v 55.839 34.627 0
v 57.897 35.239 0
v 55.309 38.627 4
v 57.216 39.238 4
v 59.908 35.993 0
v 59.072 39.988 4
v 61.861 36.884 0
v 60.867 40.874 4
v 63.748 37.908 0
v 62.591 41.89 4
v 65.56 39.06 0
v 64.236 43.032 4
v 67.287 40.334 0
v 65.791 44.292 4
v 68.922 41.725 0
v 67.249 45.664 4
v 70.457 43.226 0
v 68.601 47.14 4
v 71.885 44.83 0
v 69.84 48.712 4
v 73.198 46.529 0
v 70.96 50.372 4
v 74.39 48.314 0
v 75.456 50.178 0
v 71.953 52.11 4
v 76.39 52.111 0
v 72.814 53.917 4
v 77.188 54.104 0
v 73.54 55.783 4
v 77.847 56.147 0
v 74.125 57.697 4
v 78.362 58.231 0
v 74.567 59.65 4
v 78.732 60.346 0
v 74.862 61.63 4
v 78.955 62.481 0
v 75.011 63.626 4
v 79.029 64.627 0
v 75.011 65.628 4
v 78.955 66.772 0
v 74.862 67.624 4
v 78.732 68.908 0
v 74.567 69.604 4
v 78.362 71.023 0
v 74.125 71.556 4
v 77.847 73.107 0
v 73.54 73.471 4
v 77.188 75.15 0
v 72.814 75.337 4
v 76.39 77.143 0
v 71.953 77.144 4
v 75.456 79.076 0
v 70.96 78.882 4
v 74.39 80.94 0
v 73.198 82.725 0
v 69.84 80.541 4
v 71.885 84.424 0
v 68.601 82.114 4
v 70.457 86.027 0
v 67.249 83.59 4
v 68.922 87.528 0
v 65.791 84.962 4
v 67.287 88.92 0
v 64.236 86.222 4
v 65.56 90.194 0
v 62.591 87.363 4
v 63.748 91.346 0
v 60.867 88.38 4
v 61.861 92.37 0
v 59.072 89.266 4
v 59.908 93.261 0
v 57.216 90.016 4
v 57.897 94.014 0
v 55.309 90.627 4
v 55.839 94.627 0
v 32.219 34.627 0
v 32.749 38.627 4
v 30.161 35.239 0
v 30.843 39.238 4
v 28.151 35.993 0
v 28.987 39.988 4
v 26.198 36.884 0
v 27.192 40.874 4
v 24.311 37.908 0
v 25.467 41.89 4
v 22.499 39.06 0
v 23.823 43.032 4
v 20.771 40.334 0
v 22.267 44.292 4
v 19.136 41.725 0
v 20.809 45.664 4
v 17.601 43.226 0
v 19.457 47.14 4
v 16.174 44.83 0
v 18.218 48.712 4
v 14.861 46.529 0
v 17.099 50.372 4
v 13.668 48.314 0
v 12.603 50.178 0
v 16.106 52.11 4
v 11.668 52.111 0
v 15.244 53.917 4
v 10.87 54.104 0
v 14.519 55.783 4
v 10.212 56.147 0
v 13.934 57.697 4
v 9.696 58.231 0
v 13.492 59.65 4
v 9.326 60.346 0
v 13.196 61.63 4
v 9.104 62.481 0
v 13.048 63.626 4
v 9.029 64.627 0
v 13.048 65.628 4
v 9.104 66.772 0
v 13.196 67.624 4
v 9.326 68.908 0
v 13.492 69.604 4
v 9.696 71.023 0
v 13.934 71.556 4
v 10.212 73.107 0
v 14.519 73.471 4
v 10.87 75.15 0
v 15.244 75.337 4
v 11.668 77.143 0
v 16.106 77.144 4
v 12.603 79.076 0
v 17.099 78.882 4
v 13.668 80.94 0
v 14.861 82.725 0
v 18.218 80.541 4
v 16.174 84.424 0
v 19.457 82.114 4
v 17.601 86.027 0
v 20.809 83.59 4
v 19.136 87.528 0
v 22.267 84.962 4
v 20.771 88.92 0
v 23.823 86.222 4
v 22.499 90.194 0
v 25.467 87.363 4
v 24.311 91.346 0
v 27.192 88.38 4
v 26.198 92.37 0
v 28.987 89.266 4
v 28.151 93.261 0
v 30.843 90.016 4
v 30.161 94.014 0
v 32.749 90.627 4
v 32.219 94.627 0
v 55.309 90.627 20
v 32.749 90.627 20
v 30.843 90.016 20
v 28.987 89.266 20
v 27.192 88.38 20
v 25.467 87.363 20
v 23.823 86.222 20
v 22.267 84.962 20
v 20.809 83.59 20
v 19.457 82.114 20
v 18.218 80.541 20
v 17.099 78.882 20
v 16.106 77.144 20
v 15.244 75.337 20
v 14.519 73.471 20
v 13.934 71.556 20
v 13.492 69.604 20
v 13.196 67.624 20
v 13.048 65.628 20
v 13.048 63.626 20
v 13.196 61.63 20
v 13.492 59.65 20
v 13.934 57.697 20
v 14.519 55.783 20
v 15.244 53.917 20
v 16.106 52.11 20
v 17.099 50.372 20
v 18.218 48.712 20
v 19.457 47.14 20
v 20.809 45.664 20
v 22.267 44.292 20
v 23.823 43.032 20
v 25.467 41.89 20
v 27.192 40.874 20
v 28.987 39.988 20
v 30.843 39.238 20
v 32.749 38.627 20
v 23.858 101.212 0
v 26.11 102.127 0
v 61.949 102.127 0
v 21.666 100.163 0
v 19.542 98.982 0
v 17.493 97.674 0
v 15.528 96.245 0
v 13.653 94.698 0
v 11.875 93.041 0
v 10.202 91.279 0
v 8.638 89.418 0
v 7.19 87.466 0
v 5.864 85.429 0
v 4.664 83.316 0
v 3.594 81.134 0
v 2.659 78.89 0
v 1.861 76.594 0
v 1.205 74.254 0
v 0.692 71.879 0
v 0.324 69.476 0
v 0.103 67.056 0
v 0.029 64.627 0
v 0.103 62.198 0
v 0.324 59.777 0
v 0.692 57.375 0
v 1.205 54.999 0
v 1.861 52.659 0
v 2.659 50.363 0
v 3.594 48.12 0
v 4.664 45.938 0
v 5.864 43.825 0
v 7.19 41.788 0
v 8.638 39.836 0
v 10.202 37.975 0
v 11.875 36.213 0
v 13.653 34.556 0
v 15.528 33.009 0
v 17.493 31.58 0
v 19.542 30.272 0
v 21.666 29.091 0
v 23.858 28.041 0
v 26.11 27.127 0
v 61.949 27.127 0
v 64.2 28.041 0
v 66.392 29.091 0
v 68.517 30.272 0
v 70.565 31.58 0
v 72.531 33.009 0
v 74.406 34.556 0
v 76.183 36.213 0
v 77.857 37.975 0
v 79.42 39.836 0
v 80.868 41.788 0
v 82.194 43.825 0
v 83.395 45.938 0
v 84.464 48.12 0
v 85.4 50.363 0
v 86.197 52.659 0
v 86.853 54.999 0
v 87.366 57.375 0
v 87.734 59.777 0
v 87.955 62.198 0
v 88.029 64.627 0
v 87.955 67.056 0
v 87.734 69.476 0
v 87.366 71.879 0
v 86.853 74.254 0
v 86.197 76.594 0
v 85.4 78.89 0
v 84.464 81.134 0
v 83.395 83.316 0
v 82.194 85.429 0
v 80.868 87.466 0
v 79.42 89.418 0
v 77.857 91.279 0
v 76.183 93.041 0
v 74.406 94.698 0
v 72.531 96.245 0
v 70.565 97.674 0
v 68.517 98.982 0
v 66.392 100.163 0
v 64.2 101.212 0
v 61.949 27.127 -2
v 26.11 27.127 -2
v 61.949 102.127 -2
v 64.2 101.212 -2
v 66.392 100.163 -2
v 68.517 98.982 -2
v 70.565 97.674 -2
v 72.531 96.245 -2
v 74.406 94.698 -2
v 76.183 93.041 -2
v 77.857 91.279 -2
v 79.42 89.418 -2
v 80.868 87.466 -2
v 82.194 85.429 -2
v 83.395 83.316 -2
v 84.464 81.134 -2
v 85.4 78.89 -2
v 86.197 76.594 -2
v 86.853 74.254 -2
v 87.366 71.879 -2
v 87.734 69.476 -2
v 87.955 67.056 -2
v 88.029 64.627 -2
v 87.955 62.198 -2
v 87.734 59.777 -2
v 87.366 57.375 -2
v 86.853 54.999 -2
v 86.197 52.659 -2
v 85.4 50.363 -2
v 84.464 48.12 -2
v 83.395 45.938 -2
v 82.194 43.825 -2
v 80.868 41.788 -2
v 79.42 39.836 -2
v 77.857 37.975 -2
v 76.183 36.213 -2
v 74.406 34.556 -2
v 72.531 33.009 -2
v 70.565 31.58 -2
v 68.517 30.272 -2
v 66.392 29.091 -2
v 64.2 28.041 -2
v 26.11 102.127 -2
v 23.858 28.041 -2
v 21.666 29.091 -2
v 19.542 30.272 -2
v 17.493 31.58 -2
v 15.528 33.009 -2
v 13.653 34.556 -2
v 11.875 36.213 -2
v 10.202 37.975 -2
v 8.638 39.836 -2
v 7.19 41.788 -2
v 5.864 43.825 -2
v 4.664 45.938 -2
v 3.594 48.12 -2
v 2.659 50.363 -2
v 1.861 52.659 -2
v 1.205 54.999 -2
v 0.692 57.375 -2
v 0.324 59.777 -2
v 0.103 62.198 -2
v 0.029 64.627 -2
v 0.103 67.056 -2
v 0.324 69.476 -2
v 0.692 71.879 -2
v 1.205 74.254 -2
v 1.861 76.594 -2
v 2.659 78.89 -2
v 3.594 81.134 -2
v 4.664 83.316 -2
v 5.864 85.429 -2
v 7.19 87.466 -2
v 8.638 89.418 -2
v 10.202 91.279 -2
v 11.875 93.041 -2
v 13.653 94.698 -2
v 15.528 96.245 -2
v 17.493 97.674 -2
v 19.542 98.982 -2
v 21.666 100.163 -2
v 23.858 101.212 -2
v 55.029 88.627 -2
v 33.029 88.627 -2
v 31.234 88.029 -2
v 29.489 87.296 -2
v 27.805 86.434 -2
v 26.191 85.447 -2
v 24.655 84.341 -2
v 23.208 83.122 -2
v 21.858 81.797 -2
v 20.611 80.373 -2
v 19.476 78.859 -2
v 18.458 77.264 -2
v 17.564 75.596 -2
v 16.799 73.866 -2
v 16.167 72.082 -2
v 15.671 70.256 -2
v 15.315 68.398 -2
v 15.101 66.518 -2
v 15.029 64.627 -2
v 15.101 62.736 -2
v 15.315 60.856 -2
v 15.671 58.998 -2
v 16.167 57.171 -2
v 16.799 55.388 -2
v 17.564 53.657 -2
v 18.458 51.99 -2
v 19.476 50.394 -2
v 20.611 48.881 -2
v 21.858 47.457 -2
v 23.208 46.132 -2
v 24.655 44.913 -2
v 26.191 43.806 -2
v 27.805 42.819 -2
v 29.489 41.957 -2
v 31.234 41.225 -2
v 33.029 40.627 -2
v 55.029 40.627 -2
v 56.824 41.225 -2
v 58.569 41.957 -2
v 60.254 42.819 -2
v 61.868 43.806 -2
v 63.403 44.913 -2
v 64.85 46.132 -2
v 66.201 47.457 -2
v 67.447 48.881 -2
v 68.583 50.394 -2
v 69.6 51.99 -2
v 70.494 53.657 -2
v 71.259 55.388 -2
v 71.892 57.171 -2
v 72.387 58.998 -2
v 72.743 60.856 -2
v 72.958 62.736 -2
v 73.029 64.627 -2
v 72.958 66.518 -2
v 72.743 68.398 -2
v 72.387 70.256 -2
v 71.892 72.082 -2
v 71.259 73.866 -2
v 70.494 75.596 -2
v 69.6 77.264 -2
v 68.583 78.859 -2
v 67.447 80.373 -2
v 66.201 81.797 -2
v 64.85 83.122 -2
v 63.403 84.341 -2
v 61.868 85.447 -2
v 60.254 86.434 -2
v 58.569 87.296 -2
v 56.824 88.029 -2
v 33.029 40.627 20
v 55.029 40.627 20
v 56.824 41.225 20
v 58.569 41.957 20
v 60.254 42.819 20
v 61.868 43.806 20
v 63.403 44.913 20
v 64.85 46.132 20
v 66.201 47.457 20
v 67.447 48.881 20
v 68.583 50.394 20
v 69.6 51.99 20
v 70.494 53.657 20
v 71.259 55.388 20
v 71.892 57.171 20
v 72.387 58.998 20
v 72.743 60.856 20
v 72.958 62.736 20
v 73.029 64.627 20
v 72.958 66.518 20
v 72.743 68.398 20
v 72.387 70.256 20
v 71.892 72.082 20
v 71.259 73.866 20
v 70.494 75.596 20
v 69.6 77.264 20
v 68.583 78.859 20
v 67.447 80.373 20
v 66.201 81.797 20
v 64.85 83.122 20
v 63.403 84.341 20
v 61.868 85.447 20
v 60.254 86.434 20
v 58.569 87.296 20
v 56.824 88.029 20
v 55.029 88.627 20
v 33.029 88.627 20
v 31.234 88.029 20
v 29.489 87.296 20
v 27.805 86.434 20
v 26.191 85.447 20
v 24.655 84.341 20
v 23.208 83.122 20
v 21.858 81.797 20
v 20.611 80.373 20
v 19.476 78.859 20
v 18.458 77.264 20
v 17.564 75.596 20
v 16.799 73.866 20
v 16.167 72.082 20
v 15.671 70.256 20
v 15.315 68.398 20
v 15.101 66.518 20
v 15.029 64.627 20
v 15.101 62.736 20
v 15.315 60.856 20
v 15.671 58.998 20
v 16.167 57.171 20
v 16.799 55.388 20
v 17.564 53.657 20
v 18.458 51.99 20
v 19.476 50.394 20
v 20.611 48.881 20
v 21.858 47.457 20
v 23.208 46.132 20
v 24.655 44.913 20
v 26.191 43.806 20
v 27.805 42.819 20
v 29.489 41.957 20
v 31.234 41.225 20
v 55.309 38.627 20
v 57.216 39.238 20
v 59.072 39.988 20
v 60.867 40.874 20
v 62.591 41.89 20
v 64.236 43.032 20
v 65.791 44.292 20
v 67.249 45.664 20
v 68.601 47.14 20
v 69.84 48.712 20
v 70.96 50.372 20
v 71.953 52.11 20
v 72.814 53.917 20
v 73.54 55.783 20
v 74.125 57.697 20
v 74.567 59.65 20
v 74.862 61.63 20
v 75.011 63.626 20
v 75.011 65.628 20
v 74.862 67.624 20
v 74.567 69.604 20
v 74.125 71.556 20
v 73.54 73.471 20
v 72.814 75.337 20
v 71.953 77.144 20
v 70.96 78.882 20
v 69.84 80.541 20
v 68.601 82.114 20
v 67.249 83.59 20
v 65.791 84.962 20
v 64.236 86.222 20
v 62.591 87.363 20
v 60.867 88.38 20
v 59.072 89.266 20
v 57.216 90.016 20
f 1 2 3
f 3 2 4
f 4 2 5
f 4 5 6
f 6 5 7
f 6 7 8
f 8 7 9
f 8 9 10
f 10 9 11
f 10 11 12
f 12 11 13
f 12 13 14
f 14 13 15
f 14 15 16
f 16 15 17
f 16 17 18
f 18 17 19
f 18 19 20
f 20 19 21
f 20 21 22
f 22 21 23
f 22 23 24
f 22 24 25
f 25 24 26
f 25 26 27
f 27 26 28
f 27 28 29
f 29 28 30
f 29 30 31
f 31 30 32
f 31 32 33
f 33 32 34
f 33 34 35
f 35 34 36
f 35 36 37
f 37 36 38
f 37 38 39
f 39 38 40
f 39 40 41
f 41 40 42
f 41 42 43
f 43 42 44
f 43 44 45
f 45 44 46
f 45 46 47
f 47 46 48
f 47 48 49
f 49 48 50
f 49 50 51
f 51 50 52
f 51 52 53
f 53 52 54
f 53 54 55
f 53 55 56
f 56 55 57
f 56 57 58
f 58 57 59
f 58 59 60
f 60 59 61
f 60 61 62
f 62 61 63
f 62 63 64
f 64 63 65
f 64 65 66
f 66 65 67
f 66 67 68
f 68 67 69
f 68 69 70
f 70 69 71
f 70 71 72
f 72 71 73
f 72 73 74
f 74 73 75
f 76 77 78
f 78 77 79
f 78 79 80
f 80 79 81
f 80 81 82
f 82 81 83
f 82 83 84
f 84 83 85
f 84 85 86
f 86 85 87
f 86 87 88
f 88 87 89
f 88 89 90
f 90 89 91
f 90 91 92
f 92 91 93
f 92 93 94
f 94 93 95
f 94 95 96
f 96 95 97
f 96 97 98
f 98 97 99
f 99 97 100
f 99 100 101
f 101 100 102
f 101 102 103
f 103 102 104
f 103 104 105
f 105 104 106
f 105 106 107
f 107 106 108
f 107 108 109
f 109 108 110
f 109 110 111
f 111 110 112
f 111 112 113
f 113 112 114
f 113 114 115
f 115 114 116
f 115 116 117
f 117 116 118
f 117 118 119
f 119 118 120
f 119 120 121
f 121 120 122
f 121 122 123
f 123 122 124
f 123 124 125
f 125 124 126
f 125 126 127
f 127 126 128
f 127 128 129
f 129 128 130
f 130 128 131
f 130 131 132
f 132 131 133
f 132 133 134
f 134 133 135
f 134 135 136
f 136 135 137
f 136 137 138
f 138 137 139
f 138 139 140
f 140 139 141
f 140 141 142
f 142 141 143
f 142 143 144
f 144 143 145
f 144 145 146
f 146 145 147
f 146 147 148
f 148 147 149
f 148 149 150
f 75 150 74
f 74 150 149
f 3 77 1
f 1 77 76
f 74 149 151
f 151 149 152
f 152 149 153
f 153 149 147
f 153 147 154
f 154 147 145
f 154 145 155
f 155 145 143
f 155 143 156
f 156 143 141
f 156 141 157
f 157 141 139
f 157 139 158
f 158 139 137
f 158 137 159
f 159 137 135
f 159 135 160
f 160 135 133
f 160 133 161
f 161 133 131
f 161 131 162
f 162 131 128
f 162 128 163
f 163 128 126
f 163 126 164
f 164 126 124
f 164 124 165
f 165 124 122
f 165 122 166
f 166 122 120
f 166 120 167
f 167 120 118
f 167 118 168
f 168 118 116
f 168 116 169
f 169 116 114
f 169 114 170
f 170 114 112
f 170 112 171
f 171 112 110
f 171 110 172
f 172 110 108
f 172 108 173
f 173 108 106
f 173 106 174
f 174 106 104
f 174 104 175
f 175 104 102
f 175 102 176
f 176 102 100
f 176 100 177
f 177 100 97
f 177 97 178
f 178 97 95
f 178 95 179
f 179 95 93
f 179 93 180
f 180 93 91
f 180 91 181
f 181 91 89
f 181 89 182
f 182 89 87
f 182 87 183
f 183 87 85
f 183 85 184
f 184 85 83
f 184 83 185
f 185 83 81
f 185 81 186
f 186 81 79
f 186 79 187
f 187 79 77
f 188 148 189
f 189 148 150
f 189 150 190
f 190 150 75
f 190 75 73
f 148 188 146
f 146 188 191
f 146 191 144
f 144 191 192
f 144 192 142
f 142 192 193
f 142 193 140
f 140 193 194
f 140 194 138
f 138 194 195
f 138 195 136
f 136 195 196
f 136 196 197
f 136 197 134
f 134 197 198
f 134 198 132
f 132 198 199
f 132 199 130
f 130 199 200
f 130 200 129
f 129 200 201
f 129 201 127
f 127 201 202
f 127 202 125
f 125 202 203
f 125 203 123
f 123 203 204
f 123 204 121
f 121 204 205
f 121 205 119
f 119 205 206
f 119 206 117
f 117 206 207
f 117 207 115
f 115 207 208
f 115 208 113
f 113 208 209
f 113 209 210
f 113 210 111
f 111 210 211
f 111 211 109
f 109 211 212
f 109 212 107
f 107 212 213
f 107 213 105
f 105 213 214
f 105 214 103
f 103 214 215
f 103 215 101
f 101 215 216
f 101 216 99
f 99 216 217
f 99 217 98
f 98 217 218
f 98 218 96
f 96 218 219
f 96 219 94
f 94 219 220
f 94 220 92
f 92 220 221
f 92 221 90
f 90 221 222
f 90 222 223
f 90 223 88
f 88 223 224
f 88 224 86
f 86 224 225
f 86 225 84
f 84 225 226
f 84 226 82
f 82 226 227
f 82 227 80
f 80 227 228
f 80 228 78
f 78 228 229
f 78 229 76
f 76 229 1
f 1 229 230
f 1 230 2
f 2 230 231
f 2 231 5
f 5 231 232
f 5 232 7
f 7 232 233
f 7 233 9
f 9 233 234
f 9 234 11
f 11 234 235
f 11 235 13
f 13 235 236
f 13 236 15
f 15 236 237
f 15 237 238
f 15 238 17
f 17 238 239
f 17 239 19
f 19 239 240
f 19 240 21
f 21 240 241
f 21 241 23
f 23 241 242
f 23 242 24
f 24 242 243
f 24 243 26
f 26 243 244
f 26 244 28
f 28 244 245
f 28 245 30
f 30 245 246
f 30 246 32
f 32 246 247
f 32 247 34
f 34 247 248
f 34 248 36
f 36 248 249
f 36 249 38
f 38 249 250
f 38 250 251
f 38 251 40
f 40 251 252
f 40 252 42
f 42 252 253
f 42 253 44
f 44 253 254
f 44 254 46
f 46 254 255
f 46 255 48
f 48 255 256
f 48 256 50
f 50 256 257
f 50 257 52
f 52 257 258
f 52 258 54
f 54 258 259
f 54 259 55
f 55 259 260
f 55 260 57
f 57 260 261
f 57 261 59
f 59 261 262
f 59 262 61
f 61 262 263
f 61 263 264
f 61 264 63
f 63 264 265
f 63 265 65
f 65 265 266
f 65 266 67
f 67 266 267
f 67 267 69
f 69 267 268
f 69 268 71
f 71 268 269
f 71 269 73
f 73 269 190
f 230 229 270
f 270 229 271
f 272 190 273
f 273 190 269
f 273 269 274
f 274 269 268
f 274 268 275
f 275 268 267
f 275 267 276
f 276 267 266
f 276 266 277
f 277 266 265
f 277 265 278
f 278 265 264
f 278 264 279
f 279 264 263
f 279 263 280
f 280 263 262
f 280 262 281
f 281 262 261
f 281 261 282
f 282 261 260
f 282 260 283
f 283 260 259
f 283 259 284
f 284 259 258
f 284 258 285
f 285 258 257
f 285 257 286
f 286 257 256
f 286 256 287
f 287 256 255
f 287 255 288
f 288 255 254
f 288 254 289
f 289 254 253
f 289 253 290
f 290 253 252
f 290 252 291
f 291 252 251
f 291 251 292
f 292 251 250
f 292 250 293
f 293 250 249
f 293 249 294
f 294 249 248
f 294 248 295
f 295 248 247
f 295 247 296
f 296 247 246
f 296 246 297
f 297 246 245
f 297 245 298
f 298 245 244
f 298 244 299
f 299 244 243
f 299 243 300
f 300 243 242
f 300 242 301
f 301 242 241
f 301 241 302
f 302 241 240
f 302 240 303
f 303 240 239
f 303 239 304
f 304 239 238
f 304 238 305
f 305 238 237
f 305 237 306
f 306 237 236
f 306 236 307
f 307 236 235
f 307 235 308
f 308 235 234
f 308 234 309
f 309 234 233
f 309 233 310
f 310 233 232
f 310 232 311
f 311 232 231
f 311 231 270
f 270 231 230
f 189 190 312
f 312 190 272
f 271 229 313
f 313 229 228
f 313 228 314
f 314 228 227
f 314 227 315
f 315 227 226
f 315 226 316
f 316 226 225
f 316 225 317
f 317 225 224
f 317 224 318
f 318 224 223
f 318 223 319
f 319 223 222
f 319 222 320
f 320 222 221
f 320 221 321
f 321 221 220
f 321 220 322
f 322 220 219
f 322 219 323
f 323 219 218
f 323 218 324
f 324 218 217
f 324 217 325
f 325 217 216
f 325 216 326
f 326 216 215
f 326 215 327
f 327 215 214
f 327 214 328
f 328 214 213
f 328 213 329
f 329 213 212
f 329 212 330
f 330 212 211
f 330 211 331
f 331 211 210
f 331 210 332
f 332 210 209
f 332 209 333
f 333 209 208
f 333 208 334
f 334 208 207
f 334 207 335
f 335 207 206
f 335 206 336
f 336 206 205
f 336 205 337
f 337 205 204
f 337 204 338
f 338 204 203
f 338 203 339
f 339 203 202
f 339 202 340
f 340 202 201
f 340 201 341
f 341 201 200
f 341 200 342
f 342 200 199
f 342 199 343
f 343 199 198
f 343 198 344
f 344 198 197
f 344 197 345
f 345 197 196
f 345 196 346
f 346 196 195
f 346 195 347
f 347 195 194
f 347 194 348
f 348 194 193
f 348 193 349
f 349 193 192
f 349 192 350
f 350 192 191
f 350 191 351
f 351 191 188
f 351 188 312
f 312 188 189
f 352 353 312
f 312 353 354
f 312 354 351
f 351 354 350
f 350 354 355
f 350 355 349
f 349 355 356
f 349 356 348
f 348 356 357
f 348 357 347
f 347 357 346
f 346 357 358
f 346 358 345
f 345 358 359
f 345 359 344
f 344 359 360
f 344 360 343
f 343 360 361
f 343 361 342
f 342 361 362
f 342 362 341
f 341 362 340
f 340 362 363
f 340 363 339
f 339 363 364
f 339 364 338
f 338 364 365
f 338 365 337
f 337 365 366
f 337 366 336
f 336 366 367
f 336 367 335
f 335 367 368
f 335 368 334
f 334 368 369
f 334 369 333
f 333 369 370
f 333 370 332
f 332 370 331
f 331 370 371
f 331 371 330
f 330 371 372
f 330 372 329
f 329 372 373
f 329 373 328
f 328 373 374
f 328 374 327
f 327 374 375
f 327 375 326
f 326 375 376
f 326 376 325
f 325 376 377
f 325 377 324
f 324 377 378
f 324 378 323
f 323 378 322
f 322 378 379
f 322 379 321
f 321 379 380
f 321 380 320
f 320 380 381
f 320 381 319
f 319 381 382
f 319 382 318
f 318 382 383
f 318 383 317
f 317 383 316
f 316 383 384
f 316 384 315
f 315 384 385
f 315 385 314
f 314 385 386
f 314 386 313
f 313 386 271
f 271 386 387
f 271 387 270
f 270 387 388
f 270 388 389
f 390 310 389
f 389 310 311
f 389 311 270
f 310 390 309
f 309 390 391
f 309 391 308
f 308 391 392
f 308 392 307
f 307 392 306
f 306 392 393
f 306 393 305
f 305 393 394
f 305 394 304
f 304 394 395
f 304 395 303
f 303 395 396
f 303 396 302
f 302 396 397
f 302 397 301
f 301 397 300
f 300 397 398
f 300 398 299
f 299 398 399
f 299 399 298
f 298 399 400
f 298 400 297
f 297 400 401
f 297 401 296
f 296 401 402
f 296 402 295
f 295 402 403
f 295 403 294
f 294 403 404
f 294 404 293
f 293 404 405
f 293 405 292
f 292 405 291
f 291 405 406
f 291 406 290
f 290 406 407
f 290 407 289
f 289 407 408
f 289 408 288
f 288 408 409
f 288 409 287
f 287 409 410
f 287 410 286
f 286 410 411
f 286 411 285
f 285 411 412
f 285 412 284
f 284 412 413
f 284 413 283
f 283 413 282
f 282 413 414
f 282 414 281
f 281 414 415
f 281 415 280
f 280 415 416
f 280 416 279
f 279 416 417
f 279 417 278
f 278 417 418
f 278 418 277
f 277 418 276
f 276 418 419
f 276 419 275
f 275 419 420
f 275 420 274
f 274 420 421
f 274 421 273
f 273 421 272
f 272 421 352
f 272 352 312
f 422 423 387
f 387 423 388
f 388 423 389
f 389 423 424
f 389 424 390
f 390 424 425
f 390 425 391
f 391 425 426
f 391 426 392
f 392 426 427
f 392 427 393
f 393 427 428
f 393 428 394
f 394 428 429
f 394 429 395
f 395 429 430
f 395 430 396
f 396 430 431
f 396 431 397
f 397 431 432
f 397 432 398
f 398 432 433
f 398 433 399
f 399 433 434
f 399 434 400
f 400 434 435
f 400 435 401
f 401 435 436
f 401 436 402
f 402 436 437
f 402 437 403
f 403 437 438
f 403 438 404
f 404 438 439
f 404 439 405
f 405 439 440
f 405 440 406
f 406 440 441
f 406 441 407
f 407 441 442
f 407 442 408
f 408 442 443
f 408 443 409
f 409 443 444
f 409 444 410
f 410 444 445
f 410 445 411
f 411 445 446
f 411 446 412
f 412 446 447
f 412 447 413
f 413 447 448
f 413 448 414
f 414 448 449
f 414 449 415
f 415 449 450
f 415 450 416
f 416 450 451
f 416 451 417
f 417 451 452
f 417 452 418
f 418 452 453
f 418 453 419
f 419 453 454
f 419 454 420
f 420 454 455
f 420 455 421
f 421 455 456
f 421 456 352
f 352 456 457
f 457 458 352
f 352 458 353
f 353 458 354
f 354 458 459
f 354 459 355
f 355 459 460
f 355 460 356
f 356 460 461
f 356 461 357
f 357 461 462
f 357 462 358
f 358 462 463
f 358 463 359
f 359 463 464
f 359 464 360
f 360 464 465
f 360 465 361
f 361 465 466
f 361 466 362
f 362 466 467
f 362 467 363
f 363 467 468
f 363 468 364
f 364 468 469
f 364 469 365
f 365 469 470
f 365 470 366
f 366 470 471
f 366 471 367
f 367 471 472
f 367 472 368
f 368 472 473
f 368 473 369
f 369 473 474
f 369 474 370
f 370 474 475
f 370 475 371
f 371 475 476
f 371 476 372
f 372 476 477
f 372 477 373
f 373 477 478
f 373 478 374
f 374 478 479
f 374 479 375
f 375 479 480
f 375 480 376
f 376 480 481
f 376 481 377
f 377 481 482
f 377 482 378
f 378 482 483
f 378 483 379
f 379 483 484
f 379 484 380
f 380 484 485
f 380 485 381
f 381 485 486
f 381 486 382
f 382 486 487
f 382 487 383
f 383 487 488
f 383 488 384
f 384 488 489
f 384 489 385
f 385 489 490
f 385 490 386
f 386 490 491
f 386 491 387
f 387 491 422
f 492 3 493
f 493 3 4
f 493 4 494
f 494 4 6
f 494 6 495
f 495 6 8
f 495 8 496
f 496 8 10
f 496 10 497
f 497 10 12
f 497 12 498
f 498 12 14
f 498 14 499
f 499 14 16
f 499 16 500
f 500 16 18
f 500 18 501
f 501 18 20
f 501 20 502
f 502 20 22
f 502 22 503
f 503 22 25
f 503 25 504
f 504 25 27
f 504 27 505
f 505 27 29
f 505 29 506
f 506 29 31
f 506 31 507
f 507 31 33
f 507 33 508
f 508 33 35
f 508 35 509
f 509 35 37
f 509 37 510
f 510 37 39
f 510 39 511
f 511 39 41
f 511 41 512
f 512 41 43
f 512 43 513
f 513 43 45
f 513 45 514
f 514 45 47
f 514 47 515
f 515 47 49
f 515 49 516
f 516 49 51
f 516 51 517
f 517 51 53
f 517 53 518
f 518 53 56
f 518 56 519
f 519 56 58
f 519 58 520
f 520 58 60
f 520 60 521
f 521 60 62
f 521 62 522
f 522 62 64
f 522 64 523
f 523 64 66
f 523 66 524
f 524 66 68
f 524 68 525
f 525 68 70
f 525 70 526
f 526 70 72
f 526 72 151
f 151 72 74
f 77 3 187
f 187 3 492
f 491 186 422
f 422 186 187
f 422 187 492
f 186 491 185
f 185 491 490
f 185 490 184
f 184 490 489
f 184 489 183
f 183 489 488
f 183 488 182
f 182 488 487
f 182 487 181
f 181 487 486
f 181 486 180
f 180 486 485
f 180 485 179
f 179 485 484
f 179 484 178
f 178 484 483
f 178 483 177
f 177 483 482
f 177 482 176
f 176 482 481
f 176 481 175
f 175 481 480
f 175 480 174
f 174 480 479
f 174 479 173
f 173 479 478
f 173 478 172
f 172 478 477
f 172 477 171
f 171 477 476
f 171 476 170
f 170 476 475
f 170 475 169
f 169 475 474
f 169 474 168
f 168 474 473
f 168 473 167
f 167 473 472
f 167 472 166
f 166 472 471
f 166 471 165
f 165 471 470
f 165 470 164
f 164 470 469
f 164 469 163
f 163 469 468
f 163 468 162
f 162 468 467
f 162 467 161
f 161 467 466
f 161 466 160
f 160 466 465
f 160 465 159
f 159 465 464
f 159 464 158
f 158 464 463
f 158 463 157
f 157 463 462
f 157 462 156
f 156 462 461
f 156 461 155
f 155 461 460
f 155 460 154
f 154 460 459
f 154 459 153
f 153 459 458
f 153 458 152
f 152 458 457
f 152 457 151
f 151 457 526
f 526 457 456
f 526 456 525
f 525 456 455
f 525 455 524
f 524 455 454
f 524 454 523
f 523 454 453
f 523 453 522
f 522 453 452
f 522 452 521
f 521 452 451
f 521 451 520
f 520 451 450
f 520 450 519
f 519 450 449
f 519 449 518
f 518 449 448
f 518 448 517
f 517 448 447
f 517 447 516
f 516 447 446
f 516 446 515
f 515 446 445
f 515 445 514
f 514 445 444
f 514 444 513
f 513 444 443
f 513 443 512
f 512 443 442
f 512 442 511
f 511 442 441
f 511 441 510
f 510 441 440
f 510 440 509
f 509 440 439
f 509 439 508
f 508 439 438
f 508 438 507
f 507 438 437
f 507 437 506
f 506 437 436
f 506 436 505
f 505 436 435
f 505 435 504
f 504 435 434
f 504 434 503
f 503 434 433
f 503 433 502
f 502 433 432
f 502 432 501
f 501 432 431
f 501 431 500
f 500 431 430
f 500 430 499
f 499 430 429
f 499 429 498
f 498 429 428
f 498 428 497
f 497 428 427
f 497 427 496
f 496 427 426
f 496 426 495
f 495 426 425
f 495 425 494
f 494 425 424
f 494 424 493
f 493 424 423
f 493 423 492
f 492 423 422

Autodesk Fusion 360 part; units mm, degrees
sketch "Sketch1" plane through (0, 0, 0) normal (0, 0, 1) x (1, 0, 0)
  line L0 (33.0292, 88.6269) -> (55.0292, 88.6269)
  line L1 (33.0292, 40.6269) -> (55.0292, 40.6269)
  arc A0 (33.0292, 88.6269) -> (33.0292, 40.6269) centre (40.0292, 64.6269) ccw
  arc A1 (55.0292, 40.6269) -> (55.0292, 88.6269) centre (48.0292, 64.6269) ccw
  arc A2 (55.3093, 38.6269) -> (55.3093, 90.6269) centre (48.0292, 64.6269) ccw
  line L2 (32.7491, 38.6269) -> (55.3093, 38.6269)
  line L3 (32.7491, 90.6269) -> (55.3093, 90.6269)
  arc A3 (32.7491, 90.6269) -> (32.7491, 38.6269) centre (40.0292, 64.6269) ccw
  arc A4 (33.0292, 88.6269) -> (33.0292, 40.6269) centre (40.0292, 64.6269) ccw
  arc A5 (26.1098, 102.1269) -> (26.1098, 27.1269) centre (40.0292, 64.6269) ccw
  arc A6 (61.9486, 27.1269) -> (61.9486, 102.1269) centre (48.0292, 64.6269) ccw
  line L4 (26.1098, 102.1269) -> (61.9486, 102.1269)
  line L5 (26.1098, 27.1269) -> (61.9486, 27.1269)
  point P0 (15.0292, 64.6269)
  point P1 (73.0292, 64.6269)
  point P2 (75.0292, 64.6269)
  point P3 (13.0292, 64.6269)
  dimension "d5" = 50
  dimension "d6" = 48
  dimension "d10" = 58
  dimension "d23" = 52
  dimension "d24" = 62
  dimension "d25" = 27
  dimension "d26" = 27
  dimension "d27" = 8
  dimension "d28" = 8
  dimension "d31" = 50
  dimension "d32" = 48
  dimension "d33" = 75
  dimension "d34" = 40
  dimension "d35" = 75
  dimension "d36" = 40
  dimension "d37" = 8
extrude "Extrude1" add sketch "Sketch1" along normal blind 20 contours A2 L2 L3 A3
extrude "Extrude2" add sketch "Sketch1" against normal blind 2 contours A2 L2 L3 A3 | A5 A6 L4 L5
chamfer "Chamfer1" distance 4 angle 45 4 edges at (44.0292, 90.6269, 0) (13.0292, 64.6269, 0) (75.0292, 64.6269, 0) (44.0292, 38.6269, 0)
